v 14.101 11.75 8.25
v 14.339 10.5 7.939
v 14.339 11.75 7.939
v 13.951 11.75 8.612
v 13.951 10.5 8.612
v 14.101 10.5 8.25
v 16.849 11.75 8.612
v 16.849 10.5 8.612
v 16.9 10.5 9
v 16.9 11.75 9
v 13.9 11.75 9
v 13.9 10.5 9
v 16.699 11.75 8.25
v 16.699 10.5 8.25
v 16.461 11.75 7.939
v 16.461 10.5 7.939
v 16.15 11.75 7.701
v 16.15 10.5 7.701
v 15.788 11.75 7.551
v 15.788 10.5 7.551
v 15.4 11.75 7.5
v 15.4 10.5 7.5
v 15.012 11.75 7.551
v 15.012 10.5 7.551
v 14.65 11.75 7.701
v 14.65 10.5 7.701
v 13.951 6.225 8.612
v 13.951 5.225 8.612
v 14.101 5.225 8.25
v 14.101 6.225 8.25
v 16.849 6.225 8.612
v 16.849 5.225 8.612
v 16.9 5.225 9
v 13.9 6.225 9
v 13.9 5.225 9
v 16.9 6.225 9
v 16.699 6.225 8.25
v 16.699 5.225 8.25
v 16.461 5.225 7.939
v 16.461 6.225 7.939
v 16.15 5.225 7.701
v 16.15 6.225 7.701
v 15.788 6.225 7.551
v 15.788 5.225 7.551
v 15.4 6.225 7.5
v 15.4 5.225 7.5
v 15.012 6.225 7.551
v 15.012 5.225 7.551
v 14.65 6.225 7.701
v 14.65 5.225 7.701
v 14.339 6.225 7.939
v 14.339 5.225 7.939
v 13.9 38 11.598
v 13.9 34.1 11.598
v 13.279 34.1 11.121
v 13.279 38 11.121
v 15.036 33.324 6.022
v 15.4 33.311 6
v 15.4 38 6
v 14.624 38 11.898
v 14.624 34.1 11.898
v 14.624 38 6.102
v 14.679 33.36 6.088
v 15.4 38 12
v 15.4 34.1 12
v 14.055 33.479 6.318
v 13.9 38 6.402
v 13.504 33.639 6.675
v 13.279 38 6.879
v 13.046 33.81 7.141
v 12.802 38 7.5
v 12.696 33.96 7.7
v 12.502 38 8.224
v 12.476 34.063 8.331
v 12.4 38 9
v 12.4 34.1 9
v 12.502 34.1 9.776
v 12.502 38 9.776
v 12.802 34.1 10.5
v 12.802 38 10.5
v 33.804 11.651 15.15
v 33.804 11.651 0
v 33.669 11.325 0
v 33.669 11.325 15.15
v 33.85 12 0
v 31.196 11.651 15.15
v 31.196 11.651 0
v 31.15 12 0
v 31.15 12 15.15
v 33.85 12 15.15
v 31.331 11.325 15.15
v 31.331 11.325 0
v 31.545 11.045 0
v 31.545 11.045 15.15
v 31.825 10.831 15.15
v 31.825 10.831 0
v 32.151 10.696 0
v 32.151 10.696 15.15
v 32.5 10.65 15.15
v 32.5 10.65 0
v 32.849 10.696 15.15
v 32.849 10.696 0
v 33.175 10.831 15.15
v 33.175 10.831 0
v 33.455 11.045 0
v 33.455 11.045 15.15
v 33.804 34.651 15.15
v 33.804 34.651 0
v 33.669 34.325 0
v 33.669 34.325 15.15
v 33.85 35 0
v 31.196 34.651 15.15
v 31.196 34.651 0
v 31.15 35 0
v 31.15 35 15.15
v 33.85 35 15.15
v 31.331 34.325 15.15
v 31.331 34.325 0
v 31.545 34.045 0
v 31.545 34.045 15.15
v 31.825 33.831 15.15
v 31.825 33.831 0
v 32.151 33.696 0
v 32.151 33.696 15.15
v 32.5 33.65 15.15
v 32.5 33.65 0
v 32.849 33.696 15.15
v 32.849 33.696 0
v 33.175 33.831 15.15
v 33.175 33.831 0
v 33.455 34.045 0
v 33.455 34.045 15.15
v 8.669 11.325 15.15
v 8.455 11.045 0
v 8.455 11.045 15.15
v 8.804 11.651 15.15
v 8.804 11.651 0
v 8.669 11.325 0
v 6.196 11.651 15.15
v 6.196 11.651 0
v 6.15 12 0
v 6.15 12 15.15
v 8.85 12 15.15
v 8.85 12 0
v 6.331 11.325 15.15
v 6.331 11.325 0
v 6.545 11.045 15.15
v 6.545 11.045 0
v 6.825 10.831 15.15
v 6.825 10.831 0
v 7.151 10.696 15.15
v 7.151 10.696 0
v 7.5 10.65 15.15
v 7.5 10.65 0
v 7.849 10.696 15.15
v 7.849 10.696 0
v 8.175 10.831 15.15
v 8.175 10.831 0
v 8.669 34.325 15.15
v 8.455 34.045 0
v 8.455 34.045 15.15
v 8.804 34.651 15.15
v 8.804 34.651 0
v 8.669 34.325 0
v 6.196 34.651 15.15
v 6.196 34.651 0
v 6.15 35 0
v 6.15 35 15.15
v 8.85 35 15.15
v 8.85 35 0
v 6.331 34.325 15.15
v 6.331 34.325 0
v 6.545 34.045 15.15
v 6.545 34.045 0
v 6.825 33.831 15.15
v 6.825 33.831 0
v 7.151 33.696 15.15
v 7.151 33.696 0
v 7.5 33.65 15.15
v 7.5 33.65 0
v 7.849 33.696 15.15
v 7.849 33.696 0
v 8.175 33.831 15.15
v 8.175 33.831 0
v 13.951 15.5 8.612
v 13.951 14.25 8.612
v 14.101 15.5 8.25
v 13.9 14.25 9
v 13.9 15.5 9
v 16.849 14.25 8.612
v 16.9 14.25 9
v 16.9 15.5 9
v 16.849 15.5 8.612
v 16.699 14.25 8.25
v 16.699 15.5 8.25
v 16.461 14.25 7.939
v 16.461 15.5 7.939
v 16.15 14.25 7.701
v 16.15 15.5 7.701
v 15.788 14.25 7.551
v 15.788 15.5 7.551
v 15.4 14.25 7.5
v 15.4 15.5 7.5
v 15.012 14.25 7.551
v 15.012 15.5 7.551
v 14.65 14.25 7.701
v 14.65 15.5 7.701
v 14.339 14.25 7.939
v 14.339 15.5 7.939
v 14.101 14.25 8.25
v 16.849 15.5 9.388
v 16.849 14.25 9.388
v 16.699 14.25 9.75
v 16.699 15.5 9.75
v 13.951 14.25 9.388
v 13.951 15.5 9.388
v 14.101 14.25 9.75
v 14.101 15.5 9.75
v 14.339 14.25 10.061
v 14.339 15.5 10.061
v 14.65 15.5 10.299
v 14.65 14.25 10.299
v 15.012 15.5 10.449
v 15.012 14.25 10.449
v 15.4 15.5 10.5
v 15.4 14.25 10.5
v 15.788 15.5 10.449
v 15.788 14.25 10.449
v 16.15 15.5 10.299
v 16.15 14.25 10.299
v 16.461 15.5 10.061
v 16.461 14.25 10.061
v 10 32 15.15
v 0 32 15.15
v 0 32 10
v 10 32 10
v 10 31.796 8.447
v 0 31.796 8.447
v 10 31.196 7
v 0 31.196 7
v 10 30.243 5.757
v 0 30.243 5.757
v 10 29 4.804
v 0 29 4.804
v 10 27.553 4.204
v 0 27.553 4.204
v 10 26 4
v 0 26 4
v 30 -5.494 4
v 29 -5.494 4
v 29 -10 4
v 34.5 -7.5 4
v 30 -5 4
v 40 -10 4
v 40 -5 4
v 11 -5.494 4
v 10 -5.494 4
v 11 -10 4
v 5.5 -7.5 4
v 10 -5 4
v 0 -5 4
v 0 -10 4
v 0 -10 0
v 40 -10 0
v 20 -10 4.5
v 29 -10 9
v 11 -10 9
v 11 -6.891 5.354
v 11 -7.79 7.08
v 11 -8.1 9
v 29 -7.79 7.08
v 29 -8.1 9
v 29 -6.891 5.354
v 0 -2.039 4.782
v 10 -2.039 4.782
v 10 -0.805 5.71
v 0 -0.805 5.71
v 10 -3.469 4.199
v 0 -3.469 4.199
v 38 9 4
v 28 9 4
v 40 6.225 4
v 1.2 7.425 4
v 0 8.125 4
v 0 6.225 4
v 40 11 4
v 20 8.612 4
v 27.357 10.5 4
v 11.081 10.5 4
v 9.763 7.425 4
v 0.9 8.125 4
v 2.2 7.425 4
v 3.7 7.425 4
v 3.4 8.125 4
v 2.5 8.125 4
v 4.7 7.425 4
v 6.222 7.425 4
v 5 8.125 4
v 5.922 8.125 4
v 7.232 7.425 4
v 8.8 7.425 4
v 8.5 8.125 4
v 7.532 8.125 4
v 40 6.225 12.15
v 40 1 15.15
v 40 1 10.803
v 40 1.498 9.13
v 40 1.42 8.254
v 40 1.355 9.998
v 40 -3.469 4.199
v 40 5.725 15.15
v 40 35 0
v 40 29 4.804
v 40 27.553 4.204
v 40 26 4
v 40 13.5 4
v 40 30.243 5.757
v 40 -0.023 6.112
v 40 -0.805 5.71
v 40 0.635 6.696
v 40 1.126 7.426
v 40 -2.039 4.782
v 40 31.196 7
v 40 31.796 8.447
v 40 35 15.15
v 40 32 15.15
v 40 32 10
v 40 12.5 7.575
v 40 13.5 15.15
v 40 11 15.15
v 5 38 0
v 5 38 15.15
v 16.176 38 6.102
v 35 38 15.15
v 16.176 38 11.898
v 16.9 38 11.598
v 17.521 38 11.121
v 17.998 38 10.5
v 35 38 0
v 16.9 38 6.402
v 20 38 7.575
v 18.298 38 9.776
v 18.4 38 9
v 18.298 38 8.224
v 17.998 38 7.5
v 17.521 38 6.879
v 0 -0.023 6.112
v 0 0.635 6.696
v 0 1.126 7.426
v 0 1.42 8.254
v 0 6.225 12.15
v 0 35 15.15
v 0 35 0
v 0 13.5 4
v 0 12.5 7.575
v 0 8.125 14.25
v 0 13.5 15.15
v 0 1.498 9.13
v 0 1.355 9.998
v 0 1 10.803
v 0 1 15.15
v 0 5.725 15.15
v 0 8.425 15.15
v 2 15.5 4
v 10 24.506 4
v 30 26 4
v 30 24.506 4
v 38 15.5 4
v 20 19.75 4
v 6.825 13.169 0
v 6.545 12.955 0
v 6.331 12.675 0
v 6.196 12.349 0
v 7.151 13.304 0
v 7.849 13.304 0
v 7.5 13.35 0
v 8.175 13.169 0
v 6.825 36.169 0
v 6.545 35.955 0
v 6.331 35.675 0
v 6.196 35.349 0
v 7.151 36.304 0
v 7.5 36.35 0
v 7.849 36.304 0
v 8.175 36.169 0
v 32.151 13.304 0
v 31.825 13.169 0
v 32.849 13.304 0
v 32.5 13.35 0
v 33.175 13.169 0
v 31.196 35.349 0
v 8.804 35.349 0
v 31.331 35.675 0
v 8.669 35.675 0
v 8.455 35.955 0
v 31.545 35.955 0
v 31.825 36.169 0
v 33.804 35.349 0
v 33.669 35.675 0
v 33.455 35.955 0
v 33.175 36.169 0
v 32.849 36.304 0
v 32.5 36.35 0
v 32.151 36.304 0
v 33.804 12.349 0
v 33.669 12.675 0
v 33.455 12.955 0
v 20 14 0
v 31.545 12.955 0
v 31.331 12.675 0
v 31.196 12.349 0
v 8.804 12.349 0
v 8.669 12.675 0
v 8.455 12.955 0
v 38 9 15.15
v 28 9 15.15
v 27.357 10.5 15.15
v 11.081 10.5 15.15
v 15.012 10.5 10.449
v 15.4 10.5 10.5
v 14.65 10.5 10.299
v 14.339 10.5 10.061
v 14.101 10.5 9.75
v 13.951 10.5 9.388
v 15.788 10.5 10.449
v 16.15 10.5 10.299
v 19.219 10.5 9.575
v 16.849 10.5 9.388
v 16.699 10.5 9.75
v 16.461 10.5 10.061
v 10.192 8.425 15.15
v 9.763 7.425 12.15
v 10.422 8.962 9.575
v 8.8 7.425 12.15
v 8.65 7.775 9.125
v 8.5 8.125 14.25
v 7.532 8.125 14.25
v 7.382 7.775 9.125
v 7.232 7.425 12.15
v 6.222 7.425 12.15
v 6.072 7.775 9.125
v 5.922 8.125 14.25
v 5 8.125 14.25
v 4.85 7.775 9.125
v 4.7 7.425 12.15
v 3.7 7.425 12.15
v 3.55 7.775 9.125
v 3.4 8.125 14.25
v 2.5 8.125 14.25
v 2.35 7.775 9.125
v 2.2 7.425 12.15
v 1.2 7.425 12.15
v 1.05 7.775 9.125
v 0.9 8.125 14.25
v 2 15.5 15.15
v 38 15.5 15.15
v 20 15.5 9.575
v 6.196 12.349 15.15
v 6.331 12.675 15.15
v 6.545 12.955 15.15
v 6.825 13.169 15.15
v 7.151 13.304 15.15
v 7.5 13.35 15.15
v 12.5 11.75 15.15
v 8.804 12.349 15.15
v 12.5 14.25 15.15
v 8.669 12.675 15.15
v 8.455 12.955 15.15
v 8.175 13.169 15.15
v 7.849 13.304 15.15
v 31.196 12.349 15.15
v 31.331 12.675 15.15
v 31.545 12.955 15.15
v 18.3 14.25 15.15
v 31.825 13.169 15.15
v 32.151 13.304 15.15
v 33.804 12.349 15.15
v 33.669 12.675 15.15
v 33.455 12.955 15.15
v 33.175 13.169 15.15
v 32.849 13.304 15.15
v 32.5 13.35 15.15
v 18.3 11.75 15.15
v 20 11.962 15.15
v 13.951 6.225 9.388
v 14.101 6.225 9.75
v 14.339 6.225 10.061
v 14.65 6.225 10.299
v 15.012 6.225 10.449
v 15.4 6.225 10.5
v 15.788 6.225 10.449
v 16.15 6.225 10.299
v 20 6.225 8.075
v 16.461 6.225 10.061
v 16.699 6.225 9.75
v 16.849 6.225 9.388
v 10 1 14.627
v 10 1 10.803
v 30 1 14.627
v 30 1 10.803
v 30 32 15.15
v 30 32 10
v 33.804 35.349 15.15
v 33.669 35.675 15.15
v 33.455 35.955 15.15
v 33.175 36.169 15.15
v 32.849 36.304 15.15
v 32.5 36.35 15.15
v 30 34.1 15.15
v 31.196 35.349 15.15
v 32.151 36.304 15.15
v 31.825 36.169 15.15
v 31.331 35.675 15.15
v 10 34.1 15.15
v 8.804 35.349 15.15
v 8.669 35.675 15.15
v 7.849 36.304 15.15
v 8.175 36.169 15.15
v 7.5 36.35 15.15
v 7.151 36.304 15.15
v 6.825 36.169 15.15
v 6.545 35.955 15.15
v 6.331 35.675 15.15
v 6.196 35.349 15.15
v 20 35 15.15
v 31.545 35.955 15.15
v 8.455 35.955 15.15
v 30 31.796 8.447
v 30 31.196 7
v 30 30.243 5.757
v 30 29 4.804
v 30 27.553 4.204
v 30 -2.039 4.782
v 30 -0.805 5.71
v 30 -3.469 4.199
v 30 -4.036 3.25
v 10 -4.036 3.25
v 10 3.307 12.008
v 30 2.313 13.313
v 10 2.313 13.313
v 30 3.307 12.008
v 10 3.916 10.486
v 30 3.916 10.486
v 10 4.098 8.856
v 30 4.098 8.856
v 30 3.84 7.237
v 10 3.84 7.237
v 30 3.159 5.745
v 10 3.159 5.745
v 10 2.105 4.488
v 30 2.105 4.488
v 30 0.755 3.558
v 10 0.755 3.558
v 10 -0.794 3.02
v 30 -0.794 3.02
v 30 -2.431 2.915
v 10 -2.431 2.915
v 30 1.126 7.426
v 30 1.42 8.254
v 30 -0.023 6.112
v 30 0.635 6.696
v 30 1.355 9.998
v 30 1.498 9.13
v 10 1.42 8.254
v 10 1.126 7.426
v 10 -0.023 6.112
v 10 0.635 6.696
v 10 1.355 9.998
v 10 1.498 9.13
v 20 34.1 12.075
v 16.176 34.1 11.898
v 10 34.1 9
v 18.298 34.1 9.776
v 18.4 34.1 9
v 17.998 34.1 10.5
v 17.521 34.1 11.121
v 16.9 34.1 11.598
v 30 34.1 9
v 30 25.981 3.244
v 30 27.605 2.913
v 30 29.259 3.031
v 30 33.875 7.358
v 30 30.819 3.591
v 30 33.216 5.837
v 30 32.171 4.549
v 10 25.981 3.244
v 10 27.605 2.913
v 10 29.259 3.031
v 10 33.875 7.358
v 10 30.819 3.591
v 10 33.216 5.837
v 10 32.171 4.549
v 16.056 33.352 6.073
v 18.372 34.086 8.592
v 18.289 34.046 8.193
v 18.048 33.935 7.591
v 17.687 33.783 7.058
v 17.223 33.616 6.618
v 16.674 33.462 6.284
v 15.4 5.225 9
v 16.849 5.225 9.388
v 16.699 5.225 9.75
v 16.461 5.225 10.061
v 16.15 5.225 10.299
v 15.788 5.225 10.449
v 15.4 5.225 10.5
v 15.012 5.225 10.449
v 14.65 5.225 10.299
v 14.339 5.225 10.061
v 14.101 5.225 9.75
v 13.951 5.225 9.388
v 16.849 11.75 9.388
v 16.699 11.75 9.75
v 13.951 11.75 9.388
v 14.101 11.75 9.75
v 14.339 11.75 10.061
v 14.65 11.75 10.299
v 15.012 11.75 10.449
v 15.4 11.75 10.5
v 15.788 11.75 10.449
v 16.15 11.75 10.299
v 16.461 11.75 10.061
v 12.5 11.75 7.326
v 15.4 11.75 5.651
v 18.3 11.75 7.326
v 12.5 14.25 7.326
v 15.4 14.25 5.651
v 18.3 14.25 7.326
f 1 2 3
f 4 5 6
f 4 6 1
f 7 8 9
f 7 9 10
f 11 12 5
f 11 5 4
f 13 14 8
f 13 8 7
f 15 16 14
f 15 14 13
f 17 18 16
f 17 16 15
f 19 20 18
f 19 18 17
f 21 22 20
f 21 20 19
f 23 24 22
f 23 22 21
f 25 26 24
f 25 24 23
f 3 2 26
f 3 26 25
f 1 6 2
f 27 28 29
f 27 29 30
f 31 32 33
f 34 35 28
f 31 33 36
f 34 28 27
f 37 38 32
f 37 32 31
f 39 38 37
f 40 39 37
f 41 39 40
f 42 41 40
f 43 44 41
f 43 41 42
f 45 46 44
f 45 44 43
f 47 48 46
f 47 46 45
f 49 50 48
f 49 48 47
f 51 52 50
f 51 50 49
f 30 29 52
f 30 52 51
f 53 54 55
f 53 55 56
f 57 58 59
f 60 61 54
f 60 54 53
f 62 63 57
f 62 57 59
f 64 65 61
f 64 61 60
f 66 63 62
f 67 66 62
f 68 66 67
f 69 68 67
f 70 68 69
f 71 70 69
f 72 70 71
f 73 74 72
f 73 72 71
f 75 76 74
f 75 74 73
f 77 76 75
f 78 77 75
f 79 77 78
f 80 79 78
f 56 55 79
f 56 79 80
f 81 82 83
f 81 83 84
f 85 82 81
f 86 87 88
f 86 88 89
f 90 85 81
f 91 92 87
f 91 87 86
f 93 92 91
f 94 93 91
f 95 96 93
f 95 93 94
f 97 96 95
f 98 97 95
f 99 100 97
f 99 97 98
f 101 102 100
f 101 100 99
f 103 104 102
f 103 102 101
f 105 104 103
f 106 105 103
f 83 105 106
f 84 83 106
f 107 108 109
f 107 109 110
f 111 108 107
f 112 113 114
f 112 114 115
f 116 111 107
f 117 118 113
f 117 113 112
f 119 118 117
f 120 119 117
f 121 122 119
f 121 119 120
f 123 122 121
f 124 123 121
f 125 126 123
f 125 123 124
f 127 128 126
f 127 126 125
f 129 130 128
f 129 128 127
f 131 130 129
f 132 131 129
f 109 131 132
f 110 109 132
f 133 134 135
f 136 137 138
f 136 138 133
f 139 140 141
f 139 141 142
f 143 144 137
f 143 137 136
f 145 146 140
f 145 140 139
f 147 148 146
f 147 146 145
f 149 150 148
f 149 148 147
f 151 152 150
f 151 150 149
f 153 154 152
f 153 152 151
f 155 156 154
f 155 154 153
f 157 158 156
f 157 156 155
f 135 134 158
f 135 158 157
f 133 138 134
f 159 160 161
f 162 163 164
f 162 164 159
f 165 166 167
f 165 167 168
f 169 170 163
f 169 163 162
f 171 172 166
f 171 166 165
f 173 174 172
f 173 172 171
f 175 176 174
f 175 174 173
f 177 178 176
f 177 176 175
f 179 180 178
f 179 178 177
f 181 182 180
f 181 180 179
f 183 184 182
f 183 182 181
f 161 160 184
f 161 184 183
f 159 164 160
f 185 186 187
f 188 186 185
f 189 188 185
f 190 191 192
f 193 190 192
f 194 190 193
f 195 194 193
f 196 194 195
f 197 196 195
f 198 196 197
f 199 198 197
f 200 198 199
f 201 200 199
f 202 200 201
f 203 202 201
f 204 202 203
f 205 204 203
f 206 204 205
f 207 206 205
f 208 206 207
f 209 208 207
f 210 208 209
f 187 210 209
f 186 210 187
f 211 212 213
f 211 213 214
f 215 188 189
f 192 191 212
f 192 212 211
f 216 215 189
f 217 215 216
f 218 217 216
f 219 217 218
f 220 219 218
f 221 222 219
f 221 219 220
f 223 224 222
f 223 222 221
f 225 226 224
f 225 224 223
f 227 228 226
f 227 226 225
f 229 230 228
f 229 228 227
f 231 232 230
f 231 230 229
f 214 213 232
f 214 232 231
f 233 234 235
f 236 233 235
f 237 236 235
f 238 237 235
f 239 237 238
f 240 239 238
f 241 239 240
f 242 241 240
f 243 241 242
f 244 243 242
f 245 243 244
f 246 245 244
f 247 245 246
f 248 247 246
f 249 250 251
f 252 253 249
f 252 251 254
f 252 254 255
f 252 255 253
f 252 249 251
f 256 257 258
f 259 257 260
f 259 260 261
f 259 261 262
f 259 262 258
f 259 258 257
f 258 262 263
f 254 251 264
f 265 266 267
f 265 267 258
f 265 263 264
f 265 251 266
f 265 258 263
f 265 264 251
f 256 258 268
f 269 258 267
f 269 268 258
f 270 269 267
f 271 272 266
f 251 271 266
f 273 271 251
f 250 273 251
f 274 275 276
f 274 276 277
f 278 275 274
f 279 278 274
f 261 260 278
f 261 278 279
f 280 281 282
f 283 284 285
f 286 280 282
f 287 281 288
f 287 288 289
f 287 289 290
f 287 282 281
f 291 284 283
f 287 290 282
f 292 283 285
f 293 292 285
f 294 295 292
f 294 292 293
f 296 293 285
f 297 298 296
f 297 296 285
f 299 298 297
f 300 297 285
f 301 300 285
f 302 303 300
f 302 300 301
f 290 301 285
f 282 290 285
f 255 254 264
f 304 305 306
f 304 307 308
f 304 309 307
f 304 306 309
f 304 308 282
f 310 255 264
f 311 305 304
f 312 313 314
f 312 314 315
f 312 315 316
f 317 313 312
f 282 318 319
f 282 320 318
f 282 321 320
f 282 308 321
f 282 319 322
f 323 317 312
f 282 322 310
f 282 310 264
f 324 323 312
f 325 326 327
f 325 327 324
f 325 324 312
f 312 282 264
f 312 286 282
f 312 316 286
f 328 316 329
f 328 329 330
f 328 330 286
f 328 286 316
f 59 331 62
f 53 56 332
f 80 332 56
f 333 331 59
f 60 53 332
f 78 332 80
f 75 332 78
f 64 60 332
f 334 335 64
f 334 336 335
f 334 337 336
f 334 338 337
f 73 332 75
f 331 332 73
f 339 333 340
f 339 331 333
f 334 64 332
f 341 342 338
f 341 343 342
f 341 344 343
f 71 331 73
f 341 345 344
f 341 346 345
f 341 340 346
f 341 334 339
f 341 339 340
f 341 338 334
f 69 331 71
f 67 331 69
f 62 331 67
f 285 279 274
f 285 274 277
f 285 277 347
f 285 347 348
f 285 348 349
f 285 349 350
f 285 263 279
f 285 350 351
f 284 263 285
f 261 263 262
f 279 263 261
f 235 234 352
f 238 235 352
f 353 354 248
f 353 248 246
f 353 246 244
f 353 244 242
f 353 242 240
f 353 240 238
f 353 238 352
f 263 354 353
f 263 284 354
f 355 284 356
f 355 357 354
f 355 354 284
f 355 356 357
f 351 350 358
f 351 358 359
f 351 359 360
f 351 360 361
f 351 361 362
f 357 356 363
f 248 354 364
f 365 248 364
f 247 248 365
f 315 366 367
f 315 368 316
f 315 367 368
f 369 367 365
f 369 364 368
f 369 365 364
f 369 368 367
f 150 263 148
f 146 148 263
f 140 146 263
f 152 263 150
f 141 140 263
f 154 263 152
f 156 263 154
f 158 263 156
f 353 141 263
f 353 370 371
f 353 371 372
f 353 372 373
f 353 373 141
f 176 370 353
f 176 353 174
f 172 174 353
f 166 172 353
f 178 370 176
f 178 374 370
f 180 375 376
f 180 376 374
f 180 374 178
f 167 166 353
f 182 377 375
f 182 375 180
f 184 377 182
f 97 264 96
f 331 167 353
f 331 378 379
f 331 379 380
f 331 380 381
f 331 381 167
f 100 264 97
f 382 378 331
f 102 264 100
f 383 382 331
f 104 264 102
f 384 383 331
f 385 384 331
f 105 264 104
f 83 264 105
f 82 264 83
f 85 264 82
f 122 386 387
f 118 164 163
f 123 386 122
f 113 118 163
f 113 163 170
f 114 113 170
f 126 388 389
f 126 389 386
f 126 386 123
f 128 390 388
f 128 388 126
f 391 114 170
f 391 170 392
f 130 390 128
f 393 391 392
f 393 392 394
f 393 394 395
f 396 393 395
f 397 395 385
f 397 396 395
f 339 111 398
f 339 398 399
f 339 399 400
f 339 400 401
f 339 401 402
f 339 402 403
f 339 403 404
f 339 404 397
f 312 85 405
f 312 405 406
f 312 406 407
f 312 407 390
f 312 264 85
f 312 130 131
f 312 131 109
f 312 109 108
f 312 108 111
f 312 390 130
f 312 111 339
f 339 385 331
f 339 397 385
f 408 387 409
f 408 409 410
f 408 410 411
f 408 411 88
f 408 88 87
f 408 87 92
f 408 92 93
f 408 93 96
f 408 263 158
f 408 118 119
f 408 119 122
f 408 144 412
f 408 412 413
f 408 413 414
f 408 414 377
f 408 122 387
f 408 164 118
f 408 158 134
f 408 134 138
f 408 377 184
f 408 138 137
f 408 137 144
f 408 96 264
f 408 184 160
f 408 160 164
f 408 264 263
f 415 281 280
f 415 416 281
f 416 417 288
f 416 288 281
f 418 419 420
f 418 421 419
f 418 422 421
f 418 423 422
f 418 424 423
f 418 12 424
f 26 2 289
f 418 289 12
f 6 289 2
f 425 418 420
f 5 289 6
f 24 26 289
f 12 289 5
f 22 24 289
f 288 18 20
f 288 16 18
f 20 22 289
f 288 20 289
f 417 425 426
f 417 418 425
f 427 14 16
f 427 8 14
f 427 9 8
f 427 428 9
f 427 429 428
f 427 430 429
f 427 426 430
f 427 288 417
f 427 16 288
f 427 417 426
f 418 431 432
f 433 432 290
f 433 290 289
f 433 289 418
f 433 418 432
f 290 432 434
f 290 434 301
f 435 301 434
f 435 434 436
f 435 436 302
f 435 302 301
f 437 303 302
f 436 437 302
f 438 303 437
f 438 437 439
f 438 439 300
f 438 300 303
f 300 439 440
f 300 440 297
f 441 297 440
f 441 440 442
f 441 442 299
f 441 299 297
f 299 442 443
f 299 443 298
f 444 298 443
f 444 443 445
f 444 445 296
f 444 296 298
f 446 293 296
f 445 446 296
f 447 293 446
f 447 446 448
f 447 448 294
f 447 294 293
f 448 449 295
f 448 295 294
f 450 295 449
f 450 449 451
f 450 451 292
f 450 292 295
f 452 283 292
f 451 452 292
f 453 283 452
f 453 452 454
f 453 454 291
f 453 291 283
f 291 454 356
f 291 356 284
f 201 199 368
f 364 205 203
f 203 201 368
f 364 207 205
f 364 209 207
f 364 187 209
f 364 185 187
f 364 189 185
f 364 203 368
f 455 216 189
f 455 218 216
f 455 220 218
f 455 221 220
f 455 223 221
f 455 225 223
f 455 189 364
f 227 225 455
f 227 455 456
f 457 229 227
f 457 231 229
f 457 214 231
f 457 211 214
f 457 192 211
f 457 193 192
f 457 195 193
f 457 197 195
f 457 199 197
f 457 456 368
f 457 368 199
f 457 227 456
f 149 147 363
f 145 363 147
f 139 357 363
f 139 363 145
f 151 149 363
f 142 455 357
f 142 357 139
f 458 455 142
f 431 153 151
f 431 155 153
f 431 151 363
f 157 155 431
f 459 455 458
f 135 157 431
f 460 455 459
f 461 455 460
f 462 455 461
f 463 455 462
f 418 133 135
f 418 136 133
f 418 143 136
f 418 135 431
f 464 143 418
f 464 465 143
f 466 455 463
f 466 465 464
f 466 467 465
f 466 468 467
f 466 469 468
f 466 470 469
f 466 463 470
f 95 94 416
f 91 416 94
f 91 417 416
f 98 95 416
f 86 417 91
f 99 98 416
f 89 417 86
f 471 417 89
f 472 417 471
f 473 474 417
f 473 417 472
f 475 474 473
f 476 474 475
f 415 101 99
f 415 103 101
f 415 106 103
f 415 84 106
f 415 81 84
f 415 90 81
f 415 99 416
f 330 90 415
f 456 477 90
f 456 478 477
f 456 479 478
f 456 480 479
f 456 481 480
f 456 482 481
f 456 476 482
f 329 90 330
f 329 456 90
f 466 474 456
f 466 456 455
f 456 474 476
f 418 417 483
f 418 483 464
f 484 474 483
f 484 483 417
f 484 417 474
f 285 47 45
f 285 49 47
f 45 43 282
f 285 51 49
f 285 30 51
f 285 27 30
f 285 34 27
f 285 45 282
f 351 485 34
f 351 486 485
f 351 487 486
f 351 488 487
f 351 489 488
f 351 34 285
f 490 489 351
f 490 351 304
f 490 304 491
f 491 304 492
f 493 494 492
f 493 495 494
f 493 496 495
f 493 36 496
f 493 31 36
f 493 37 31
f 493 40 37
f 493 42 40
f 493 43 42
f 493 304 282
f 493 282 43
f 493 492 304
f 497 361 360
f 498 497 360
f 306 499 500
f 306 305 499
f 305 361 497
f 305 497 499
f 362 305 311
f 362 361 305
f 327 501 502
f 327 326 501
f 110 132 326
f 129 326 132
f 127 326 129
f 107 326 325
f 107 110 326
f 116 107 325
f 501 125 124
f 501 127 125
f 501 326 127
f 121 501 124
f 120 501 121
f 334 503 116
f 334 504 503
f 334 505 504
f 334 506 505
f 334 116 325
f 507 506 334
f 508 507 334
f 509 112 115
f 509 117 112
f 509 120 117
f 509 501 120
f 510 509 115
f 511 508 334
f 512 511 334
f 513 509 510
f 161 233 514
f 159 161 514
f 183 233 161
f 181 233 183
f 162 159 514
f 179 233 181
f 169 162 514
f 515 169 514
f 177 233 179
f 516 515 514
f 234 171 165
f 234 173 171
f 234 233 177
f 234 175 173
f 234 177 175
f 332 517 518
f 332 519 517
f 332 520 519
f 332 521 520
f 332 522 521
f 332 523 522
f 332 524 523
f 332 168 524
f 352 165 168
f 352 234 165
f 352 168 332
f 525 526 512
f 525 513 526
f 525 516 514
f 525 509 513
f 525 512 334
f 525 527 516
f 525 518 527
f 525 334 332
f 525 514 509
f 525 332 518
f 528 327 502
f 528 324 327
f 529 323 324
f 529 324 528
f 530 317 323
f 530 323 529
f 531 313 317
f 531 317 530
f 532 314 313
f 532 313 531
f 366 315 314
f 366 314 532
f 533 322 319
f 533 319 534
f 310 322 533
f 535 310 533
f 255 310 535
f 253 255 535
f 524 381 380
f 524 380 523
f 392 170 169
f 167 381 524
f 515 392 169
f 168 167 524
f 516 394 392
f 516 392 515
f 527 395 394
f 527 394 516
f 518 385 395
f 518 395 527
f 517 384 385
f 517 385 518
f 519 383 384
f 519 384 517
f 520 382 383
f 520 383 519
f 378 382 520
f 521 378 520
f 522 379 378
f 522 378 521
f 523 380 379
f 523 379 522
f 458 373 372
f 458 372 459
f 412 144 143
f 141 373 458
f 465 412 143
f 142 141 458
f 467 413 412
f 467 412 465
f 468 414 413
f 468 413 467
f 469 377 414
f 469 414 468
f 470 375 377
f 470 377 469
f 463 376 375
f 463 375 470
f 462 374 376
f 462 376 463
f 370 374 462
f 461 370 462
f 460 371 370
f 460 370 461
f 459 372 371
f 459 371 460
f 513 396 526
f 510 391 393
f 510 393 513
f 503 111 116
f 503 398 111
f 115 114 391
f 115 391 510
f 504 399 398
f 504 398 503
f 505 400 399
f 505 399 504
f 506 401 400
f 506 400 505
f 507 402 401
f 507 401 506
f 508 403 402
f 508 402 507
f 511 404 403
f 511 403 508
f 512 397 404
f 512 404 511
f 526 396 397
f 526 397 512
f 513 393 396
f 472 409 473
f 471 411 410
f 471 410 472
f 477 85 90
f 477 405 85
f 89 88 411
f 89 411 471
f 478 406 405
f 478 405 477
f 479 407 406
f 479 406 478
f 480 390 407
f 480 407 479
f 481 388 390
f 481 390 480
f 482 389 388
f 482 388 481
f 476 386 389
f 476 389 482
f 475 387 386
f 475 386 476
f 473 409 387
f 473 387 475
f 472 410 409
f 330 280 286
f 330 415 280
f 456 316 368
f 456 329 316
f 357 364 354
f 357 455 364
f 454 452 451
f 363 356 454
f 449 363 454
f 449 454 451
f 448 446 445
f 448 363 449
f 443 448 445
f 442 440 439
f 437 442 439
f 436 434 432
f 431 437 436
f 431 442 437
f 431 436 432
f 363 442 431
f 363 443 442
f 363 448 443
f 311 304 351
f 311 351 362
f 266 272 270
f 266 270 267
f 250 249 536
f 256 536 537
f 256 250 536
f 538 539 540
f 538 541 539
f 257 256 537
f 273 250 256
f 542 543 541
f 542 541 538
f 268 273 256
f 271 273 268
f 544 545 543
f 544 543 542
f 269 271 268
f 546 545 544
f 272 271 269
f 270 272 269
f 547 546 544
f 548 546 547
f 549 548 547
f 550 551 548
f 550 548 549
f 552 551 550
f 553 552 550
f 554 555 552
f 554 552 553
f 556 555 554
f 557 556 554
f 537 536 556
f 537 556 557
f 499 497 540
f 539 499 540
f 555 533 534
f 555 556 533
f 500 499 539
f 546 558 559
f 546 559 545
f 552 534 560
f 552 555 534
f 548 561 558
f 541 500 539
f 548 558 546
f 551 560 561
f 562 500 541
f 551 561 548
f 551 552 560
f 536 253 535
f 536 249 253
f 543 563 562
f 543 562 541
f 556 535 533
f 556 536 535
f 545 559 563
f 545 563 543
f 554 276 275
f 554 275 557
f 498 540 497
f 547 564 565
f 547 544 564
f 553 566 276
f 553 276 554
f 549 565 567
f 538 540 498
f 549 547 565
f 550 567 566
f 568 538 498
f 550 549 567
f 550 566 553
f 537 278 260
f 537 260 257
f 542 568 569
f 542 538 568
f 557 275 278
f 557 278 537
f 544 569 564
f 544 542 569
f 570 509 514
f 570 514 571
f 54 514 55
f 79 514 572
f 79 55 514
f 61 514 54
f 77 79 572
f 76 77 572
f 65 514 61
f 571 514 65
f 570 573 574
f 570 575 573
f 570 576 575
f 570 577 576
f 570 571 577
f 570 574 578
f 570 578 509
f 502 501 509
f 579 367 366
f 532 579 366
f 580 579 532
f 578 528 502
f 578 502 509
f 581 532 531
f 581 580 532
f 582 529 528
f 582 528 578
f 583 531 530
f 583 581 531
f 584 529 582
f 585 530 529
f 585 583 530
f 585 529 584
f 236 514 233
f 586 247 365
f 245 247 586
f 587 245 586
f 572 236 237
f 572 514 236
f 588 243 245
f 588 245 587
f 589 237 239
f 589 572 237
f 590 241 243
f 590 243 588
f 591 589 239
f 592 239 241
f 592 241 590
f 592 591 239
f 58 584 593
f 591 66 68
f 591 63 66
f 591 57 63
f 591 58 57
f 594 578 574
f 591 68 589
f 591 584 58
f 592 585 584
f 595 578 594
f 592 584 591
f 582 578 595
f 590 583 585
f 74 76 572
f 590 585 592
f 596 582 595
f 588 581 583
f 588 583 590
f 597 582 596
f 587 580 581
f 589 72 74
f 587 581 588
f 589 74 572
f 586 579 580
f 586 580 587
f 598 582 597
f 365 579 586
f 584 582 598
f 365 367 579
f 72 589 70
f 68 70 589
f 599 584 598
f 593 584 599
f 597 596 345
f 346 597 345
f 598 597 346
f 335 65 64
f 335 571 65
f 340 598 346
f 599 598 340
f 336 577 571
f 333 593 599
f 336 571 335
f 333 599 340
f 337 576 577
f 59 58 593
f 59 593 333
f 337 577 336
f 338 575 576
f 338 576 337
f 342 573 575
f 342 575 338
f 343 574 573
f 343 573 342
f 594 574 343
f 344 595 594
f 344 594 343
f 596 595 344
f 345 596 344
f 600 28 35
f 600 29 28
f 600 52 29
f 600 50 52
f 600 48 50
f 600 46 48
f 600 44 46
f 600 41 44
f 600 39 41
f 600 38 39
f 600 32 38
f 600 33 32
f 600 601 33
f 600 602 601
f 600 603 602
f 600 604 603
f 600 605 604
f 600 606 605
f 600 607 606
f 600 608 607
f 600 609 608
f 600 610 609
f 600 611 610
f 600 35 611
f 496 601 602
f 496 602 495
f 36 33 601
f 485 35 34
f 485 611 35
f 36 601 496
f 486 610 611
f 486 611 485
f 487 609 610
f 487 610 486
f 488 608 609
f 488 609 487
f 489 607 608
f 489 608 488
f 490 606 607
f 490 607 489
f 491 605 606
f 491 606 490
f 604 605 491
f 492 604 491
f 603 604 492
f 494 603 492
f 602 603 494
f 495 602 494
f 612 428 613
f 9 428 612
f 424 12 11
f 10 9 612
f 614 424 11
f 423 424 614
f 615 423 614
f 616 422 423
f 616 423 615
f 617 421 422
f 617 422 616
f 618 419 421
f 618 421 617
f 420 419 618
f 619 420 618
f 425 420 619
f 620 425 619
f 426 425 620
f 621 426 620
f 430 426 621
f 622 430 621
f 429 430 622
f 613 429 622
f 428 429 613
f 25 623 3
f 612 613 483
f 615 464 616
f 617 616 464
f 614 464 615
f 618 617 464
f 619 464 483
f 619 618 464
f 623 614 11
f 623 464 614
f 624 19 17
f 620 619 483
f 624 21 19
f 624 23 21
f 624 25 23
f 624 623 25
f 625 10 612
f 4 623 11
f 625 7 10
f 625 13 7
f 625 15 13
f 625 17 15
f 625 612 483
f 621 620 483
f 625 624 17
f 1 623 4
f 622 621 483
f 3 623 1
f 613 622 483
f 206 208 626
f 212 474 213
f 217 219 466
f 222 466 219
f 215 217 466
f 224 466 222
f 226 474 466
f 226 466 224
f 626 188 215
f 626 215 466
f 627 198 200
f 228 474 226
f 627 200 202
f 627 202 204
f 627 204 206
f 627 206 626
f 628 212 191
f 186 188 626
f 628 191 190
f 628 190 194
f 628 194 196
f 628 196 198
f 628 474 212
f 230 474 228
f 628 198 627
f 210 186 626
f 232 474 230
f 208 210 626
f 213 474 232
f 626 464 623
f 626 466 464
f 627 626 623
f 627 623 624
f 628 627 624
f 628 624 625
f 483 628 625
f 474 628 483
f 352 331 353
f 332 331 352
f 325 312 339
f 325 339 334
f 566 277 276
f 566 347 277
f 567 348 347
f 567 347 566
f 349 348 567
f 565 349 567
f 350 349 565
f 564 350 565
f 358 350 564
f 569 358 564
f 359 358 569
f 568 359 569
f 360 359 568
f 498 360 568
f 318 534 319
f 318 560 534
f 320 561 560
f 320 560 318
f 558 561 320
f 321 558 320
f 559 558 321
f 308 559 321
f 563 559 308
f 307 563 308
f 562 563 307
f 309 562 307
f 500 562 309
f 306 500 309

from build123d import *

# Parameters (mm, degrees)
SKETCH1_W                = 40
SKETCH1_H                = 48
BOSS_EXTRUDE1_DEPTH      = 4
BOSS_EXTRUDE2_DEPTH      = 11.15
BOSS_EXTRUDE2_DEPTH_BACK = 4
SKETCH5_W                = 40
SKETCH5_H                = 5.225
SKETCH5_W_2              = 18
SKETCH5_H_2              = 5
SKETCH5_H_3              = 6
FILLET1_DEPTH            = 40
SKETCH6_R                = 1.25
CUT_EXTRUDE4_DEPTH       = 58.214705278
CHAMFER2_SIZE            = 2
CHAMFER3_SIZE            = 3
CHAMFER3_SIZE2           = 1
CHAMFER4_SIZE            = 3
CHAMFER4_SIZE2           = 0.5
CUT_EXTRUDE6_DEPTH       = 10
CUT_EXTRUDE6_DEPTH_BACK  = 10
CUT_EXTRUDE8_REACH       = 66.292
SKETCH12_R               = 3
SKETCH13_R               = 1.5
CUT_EXTRUDE10_DEPTH      = 10.275
CUT_EXTRUDE7_DEPTH       = 1.25
CUT_EXTRUDE7_DEPTH_BACK  = 1.25
CHAMFER5_SIZE            = 5
CHAMFER5_SIZE2           = 3
CHAMFER6_SIZE            = 3
CHAMFER6_SIZE2           = 5
CUT_EXTRUDE12_DEPTH      = 46.535947422
CUT_EXTRUDE12_DEPTH_BACK = 46.535947422
SKETCH15_R               = 3.5


with BuildPart() as part:
    # Sketch1 → Boss-Extrude1 (new body)
    with BuildSketch(Plane.XY):
        with Locations((20, 14)):
            Rectangle(SKETCH1_W, SKETCH1_H)
    extrude(amount=BOSS_EXTRUDE1_DEPTH)

    # Sketch5 → Boss-Extrude2 (add, two sides: drawn at the far end of the back side and taken through both)
    with BuildSketch(Plane.XY.offset(4).offset(-BOSS_EXTRUDE2_DEPTH_BACK)):
        Polygon((0.9, 8.125), (0, 8.125), (0, 15.5), (40, 15.5), (40, 9), (28, 9), (27.357142857, 10.5), (11.081237185, 10.5), (9.763380042, 7.425), (8.800403155, 7.425), (8.500403155, 8.125), (7.531690021, 8.125), (7.231690021, 7.425), (6.221941609, 7.425), (5.921941609, 8.125), (5, 8.125), (4.7, 7.425), (3.7, 7.425), (3.4, 8.125), (2.5, 8.125), (2.2, 7.425), (1.2, 7.425), align=None)
        with Locations((20, 3.6125)):
            Rectangle(SKETCH5_W, SKETCH5_H)
        with Locations((20, -7.5)):
            Rectangle(SKETCH5_W_2, SKETCH5_H_2)
        with Locations((20, 35)):
            Rectangle(SKETCH5_W, SKETCH5_H_3)
    extrude(amount=BOSS_EXTRUDE2_DEPTH + BOSS_EXTRUDE2_DEPTH_BACK)

    # Fillet1: read off the stored shape, not the designer's step
    # Fillet1 outline → Fillet1 (add)
    with BuildSketch(Plane.YZ):
        with BuildLine():
            Line((32, 4), (32, 10))
            ThreePointArc((32, 10), (30.242640687, 5.757359313), (26, 4))
            Line((26, 4), (32, 4))
        make_face()
        with BuildLine():
            Line((1, 4), (1, 10))
            ThreePointArc((1, 10), (-0.757359313, 5.757359313), (-5, 4))
            Line((-5, 4), (1, 4))
        make_face()
    extrude(amount=FILLET1_DEPTH)

    # Sketch6 → Cut-Extrude4 (cut, through all)
    with BuildSketch(Plane.XY.offset(15.15)):
        with Locations((7.5, 35)):
            Circle(SKETCH6_R)
        with Locations((7.5, 12)):
            Circle(SKETCH6_R)
        with Locations((32.5, 35)):
            Circle(SKETCH6_R)
        with Locations((32.5, 12)):
            Circle(SKETCH6_R)
    extrude(amount=-CUT_EXTRUDE4_DEPTH, mode=Mode.SUBTRACT)

    # Chamfer2
    chamfer2_edges = [part.edges().sort_by_distance(p)[0] for p in [
        (40, 9, 9.575),
        (0, 15.5, 9.575),
        (40, 15.5, 9.575),
    ]]
    chamfer(chamfer2_edges, length=CHAMFER2_SIZE)

    # Chamfer3
    chamfer3_edges = [part.edges().sort_by_distance(p)[0] for p in [
        (4.2, 7.425, 15.15),
    ]]
    chamfer3_side = [part.faces().sort_by_distance(p)[0] for p in [
        (4.2, 7.425, 9.575),
    ]]
    chamfer(chamfer3_edges, length=CHAMFER3_SIZE, length2=CHAMFER3_SIZE2, reference=chamfer3_side[0])

    # Chamfer4
    chamfer4_edges = [part.edges().sort_by_distance(p)[0] for p in [
        (20, 6.225, 15.15),
    ]]
    chamfer4_side = [part.faces().sort_by_distance(p)[0] for p in [
        (20, 6.225, 9.575),
    ]]
    chamfer(chamfer4_edges, length=CHAMFER4_SIZE, length2=CHAMFER4_SIZE2, reference=chamfer4_side[0])

    # Sketch8 → Cut-Extrude6 (cut, two sides: drawn at the far end of the back side and taken through both)
    with BuildSketch(Plane(origin=(20, 0, 0), x_dir=(0, 0, -1), z_dir=(1, 0, 0)).offset(-CUT_EXTRUDE6_DEPTH_BACK)):
        with BuildLine():
            Line((-9, 34.1), (-18.820916768, 34.1))
            Line((-18.820916768, 34.1), (-18.820916768, 21.9))
            Line((-18.820916768, 21.9), (-9, 21.9))
            ThreePointArc((-9, 21.9), (-2.9, 28), (-9, 34.1))
        make_face()
        with BuildLine():
            Line((-18.820916768, -10.472551988), (-18.820916768, -3.194214037))
            Line((-18.820916768, -3.194214037), (-13.313351365, 2.313351365))
            ThreePointArc((-13.313351365, 2.313351365), (-3.364334852, 0.334368937), (-9, -8.1))
            Line((-9, -8.1), (-9, -10.472551988))
            Line((-9, -10.472551988), (-18.820916768, -10.472551988))
        make_face()
    extrude(amount=CUT_EXTRUDE6_DEPTH + CUT_EXTRUDE6_DEPTH_BACK, mode=Mode.SUBTRACT)

    # Cut-Extrude8: up to this face of the body (flat: up to its plane)
    cut_extrude8_end = Plane(part.part.faces().sort_by_distance((20, 15.5, 9.575))[0])
    # Sketch12 → Cut-Extrude8 (cut, up to the picked face)
    with BuildSketch(Plane(origin=(0, 38, 0), x_dir=(1, 0, 0), z_dir=(0, 1, 0)), mode=Mode.PRIVATE) as cut_extrude8_sk1:
        with Locations(Location((15.4, -9, 0), (0, 0, 270))):
            Circle(SKETCH12_R)
    cut_extrude8_tool1 = split(extrude(cut_extrude8_sk1.sketch, amount=-CUT_EXTRUDE8_REACH, mode=Mode.PRIVATE), bisect_by=cut_extrude8_end, keep=Keep.BOTH, mode=Mode.PRIVATE)
    add(cut_extrude8_tool1.solids().sort_by(Axis((15.4, 38, 9), (0, -1, 0)))[0], mode=Mode.SUBTRACT)

    # Sketch13 → Cut-Extrude10 (cut)
    with BuildSketch(Plane(origin=(0, 15.5, 0), x_dir=(1, 0, 0), z_dir=(0, 1, 0))):
        with Locations(Location((15.4, -9, 0), (0, 0, 180))):
            Circle(SKETCH13_R)
    extrude(amount=-CUT_EXTRUDE10_DEPTH, mode=Mode.SUBTRACT)

    # Sketch9 → Cut-Extrude7 (cut, two sides: drawn at the far end of the back side and taken through both)
    with BuildSketch(Plane.XZ.offset(-13).offset(-CUT_EXTRUDE7_DEPTH_BACK)):
        Polygon((12.5, 16.815347994), (18.3, 16.815347994), (18.3, 7.325684219), (15.4, 5.651368439), (12.5, 7.325684219), align=None)
    extrude(amount=CUT_EXTRUDE7_DEPTH + CUT_EXTRUDE7_DEPTH_BACK, mode=Mode.SUBTRACT)

    # Chamfer5
    chamfer5_edges = [part.edges().sort_by_distance(p)[0] for p in [
        (0, 38, 7.575),
    ]]
    chamfer5_side = [part.faces().sort_by_distance(p)[0] for p in [
        (20.225127502, 38, 7.505259415),
    ]]
    chamfer(chamfer5_edges, length=CHAMFER5_SIZE, length2=CHAMFER5_SIZE2, reference=chamfer5_side[0])

    # Chamfer6
    chamfer6_edges = [part.edges().sort_by_distance(p)[0] for p in [
        (40, 38, 7.575),
    ]]
    chamfer6_side = [part.faces().sort_by_distance(p)[0] for p in [
        (40, 5.721658913, 8.075),
    ]]
    chamfer(chamfer6_edges, length=CHAMFER6_SIZE, length2=CHAMFER6_SIZE2, reference=chamfer6_side[0])

    # Sketch15 → Cut-Extrude12 (cut, two sides: drawn at the far end of the back side and taken through both)
    with BuildSketch(Plane(origin=(20, 0, 0), x_dir=(0, 0, -1), z_dir=(1, 0, 0)).offset(-CUT_EXTRUDE12_DEPTH_BACK)):
        with Locations((-9, -2)):
            Circle(SKETCH15_R)
    extrude(amount=CUT_EXTRUDE12_DEPTH + CUT_EXTRUDE12_DEPTH_BACK, mode=Mode.SUBTRACT)


solid = part.part
